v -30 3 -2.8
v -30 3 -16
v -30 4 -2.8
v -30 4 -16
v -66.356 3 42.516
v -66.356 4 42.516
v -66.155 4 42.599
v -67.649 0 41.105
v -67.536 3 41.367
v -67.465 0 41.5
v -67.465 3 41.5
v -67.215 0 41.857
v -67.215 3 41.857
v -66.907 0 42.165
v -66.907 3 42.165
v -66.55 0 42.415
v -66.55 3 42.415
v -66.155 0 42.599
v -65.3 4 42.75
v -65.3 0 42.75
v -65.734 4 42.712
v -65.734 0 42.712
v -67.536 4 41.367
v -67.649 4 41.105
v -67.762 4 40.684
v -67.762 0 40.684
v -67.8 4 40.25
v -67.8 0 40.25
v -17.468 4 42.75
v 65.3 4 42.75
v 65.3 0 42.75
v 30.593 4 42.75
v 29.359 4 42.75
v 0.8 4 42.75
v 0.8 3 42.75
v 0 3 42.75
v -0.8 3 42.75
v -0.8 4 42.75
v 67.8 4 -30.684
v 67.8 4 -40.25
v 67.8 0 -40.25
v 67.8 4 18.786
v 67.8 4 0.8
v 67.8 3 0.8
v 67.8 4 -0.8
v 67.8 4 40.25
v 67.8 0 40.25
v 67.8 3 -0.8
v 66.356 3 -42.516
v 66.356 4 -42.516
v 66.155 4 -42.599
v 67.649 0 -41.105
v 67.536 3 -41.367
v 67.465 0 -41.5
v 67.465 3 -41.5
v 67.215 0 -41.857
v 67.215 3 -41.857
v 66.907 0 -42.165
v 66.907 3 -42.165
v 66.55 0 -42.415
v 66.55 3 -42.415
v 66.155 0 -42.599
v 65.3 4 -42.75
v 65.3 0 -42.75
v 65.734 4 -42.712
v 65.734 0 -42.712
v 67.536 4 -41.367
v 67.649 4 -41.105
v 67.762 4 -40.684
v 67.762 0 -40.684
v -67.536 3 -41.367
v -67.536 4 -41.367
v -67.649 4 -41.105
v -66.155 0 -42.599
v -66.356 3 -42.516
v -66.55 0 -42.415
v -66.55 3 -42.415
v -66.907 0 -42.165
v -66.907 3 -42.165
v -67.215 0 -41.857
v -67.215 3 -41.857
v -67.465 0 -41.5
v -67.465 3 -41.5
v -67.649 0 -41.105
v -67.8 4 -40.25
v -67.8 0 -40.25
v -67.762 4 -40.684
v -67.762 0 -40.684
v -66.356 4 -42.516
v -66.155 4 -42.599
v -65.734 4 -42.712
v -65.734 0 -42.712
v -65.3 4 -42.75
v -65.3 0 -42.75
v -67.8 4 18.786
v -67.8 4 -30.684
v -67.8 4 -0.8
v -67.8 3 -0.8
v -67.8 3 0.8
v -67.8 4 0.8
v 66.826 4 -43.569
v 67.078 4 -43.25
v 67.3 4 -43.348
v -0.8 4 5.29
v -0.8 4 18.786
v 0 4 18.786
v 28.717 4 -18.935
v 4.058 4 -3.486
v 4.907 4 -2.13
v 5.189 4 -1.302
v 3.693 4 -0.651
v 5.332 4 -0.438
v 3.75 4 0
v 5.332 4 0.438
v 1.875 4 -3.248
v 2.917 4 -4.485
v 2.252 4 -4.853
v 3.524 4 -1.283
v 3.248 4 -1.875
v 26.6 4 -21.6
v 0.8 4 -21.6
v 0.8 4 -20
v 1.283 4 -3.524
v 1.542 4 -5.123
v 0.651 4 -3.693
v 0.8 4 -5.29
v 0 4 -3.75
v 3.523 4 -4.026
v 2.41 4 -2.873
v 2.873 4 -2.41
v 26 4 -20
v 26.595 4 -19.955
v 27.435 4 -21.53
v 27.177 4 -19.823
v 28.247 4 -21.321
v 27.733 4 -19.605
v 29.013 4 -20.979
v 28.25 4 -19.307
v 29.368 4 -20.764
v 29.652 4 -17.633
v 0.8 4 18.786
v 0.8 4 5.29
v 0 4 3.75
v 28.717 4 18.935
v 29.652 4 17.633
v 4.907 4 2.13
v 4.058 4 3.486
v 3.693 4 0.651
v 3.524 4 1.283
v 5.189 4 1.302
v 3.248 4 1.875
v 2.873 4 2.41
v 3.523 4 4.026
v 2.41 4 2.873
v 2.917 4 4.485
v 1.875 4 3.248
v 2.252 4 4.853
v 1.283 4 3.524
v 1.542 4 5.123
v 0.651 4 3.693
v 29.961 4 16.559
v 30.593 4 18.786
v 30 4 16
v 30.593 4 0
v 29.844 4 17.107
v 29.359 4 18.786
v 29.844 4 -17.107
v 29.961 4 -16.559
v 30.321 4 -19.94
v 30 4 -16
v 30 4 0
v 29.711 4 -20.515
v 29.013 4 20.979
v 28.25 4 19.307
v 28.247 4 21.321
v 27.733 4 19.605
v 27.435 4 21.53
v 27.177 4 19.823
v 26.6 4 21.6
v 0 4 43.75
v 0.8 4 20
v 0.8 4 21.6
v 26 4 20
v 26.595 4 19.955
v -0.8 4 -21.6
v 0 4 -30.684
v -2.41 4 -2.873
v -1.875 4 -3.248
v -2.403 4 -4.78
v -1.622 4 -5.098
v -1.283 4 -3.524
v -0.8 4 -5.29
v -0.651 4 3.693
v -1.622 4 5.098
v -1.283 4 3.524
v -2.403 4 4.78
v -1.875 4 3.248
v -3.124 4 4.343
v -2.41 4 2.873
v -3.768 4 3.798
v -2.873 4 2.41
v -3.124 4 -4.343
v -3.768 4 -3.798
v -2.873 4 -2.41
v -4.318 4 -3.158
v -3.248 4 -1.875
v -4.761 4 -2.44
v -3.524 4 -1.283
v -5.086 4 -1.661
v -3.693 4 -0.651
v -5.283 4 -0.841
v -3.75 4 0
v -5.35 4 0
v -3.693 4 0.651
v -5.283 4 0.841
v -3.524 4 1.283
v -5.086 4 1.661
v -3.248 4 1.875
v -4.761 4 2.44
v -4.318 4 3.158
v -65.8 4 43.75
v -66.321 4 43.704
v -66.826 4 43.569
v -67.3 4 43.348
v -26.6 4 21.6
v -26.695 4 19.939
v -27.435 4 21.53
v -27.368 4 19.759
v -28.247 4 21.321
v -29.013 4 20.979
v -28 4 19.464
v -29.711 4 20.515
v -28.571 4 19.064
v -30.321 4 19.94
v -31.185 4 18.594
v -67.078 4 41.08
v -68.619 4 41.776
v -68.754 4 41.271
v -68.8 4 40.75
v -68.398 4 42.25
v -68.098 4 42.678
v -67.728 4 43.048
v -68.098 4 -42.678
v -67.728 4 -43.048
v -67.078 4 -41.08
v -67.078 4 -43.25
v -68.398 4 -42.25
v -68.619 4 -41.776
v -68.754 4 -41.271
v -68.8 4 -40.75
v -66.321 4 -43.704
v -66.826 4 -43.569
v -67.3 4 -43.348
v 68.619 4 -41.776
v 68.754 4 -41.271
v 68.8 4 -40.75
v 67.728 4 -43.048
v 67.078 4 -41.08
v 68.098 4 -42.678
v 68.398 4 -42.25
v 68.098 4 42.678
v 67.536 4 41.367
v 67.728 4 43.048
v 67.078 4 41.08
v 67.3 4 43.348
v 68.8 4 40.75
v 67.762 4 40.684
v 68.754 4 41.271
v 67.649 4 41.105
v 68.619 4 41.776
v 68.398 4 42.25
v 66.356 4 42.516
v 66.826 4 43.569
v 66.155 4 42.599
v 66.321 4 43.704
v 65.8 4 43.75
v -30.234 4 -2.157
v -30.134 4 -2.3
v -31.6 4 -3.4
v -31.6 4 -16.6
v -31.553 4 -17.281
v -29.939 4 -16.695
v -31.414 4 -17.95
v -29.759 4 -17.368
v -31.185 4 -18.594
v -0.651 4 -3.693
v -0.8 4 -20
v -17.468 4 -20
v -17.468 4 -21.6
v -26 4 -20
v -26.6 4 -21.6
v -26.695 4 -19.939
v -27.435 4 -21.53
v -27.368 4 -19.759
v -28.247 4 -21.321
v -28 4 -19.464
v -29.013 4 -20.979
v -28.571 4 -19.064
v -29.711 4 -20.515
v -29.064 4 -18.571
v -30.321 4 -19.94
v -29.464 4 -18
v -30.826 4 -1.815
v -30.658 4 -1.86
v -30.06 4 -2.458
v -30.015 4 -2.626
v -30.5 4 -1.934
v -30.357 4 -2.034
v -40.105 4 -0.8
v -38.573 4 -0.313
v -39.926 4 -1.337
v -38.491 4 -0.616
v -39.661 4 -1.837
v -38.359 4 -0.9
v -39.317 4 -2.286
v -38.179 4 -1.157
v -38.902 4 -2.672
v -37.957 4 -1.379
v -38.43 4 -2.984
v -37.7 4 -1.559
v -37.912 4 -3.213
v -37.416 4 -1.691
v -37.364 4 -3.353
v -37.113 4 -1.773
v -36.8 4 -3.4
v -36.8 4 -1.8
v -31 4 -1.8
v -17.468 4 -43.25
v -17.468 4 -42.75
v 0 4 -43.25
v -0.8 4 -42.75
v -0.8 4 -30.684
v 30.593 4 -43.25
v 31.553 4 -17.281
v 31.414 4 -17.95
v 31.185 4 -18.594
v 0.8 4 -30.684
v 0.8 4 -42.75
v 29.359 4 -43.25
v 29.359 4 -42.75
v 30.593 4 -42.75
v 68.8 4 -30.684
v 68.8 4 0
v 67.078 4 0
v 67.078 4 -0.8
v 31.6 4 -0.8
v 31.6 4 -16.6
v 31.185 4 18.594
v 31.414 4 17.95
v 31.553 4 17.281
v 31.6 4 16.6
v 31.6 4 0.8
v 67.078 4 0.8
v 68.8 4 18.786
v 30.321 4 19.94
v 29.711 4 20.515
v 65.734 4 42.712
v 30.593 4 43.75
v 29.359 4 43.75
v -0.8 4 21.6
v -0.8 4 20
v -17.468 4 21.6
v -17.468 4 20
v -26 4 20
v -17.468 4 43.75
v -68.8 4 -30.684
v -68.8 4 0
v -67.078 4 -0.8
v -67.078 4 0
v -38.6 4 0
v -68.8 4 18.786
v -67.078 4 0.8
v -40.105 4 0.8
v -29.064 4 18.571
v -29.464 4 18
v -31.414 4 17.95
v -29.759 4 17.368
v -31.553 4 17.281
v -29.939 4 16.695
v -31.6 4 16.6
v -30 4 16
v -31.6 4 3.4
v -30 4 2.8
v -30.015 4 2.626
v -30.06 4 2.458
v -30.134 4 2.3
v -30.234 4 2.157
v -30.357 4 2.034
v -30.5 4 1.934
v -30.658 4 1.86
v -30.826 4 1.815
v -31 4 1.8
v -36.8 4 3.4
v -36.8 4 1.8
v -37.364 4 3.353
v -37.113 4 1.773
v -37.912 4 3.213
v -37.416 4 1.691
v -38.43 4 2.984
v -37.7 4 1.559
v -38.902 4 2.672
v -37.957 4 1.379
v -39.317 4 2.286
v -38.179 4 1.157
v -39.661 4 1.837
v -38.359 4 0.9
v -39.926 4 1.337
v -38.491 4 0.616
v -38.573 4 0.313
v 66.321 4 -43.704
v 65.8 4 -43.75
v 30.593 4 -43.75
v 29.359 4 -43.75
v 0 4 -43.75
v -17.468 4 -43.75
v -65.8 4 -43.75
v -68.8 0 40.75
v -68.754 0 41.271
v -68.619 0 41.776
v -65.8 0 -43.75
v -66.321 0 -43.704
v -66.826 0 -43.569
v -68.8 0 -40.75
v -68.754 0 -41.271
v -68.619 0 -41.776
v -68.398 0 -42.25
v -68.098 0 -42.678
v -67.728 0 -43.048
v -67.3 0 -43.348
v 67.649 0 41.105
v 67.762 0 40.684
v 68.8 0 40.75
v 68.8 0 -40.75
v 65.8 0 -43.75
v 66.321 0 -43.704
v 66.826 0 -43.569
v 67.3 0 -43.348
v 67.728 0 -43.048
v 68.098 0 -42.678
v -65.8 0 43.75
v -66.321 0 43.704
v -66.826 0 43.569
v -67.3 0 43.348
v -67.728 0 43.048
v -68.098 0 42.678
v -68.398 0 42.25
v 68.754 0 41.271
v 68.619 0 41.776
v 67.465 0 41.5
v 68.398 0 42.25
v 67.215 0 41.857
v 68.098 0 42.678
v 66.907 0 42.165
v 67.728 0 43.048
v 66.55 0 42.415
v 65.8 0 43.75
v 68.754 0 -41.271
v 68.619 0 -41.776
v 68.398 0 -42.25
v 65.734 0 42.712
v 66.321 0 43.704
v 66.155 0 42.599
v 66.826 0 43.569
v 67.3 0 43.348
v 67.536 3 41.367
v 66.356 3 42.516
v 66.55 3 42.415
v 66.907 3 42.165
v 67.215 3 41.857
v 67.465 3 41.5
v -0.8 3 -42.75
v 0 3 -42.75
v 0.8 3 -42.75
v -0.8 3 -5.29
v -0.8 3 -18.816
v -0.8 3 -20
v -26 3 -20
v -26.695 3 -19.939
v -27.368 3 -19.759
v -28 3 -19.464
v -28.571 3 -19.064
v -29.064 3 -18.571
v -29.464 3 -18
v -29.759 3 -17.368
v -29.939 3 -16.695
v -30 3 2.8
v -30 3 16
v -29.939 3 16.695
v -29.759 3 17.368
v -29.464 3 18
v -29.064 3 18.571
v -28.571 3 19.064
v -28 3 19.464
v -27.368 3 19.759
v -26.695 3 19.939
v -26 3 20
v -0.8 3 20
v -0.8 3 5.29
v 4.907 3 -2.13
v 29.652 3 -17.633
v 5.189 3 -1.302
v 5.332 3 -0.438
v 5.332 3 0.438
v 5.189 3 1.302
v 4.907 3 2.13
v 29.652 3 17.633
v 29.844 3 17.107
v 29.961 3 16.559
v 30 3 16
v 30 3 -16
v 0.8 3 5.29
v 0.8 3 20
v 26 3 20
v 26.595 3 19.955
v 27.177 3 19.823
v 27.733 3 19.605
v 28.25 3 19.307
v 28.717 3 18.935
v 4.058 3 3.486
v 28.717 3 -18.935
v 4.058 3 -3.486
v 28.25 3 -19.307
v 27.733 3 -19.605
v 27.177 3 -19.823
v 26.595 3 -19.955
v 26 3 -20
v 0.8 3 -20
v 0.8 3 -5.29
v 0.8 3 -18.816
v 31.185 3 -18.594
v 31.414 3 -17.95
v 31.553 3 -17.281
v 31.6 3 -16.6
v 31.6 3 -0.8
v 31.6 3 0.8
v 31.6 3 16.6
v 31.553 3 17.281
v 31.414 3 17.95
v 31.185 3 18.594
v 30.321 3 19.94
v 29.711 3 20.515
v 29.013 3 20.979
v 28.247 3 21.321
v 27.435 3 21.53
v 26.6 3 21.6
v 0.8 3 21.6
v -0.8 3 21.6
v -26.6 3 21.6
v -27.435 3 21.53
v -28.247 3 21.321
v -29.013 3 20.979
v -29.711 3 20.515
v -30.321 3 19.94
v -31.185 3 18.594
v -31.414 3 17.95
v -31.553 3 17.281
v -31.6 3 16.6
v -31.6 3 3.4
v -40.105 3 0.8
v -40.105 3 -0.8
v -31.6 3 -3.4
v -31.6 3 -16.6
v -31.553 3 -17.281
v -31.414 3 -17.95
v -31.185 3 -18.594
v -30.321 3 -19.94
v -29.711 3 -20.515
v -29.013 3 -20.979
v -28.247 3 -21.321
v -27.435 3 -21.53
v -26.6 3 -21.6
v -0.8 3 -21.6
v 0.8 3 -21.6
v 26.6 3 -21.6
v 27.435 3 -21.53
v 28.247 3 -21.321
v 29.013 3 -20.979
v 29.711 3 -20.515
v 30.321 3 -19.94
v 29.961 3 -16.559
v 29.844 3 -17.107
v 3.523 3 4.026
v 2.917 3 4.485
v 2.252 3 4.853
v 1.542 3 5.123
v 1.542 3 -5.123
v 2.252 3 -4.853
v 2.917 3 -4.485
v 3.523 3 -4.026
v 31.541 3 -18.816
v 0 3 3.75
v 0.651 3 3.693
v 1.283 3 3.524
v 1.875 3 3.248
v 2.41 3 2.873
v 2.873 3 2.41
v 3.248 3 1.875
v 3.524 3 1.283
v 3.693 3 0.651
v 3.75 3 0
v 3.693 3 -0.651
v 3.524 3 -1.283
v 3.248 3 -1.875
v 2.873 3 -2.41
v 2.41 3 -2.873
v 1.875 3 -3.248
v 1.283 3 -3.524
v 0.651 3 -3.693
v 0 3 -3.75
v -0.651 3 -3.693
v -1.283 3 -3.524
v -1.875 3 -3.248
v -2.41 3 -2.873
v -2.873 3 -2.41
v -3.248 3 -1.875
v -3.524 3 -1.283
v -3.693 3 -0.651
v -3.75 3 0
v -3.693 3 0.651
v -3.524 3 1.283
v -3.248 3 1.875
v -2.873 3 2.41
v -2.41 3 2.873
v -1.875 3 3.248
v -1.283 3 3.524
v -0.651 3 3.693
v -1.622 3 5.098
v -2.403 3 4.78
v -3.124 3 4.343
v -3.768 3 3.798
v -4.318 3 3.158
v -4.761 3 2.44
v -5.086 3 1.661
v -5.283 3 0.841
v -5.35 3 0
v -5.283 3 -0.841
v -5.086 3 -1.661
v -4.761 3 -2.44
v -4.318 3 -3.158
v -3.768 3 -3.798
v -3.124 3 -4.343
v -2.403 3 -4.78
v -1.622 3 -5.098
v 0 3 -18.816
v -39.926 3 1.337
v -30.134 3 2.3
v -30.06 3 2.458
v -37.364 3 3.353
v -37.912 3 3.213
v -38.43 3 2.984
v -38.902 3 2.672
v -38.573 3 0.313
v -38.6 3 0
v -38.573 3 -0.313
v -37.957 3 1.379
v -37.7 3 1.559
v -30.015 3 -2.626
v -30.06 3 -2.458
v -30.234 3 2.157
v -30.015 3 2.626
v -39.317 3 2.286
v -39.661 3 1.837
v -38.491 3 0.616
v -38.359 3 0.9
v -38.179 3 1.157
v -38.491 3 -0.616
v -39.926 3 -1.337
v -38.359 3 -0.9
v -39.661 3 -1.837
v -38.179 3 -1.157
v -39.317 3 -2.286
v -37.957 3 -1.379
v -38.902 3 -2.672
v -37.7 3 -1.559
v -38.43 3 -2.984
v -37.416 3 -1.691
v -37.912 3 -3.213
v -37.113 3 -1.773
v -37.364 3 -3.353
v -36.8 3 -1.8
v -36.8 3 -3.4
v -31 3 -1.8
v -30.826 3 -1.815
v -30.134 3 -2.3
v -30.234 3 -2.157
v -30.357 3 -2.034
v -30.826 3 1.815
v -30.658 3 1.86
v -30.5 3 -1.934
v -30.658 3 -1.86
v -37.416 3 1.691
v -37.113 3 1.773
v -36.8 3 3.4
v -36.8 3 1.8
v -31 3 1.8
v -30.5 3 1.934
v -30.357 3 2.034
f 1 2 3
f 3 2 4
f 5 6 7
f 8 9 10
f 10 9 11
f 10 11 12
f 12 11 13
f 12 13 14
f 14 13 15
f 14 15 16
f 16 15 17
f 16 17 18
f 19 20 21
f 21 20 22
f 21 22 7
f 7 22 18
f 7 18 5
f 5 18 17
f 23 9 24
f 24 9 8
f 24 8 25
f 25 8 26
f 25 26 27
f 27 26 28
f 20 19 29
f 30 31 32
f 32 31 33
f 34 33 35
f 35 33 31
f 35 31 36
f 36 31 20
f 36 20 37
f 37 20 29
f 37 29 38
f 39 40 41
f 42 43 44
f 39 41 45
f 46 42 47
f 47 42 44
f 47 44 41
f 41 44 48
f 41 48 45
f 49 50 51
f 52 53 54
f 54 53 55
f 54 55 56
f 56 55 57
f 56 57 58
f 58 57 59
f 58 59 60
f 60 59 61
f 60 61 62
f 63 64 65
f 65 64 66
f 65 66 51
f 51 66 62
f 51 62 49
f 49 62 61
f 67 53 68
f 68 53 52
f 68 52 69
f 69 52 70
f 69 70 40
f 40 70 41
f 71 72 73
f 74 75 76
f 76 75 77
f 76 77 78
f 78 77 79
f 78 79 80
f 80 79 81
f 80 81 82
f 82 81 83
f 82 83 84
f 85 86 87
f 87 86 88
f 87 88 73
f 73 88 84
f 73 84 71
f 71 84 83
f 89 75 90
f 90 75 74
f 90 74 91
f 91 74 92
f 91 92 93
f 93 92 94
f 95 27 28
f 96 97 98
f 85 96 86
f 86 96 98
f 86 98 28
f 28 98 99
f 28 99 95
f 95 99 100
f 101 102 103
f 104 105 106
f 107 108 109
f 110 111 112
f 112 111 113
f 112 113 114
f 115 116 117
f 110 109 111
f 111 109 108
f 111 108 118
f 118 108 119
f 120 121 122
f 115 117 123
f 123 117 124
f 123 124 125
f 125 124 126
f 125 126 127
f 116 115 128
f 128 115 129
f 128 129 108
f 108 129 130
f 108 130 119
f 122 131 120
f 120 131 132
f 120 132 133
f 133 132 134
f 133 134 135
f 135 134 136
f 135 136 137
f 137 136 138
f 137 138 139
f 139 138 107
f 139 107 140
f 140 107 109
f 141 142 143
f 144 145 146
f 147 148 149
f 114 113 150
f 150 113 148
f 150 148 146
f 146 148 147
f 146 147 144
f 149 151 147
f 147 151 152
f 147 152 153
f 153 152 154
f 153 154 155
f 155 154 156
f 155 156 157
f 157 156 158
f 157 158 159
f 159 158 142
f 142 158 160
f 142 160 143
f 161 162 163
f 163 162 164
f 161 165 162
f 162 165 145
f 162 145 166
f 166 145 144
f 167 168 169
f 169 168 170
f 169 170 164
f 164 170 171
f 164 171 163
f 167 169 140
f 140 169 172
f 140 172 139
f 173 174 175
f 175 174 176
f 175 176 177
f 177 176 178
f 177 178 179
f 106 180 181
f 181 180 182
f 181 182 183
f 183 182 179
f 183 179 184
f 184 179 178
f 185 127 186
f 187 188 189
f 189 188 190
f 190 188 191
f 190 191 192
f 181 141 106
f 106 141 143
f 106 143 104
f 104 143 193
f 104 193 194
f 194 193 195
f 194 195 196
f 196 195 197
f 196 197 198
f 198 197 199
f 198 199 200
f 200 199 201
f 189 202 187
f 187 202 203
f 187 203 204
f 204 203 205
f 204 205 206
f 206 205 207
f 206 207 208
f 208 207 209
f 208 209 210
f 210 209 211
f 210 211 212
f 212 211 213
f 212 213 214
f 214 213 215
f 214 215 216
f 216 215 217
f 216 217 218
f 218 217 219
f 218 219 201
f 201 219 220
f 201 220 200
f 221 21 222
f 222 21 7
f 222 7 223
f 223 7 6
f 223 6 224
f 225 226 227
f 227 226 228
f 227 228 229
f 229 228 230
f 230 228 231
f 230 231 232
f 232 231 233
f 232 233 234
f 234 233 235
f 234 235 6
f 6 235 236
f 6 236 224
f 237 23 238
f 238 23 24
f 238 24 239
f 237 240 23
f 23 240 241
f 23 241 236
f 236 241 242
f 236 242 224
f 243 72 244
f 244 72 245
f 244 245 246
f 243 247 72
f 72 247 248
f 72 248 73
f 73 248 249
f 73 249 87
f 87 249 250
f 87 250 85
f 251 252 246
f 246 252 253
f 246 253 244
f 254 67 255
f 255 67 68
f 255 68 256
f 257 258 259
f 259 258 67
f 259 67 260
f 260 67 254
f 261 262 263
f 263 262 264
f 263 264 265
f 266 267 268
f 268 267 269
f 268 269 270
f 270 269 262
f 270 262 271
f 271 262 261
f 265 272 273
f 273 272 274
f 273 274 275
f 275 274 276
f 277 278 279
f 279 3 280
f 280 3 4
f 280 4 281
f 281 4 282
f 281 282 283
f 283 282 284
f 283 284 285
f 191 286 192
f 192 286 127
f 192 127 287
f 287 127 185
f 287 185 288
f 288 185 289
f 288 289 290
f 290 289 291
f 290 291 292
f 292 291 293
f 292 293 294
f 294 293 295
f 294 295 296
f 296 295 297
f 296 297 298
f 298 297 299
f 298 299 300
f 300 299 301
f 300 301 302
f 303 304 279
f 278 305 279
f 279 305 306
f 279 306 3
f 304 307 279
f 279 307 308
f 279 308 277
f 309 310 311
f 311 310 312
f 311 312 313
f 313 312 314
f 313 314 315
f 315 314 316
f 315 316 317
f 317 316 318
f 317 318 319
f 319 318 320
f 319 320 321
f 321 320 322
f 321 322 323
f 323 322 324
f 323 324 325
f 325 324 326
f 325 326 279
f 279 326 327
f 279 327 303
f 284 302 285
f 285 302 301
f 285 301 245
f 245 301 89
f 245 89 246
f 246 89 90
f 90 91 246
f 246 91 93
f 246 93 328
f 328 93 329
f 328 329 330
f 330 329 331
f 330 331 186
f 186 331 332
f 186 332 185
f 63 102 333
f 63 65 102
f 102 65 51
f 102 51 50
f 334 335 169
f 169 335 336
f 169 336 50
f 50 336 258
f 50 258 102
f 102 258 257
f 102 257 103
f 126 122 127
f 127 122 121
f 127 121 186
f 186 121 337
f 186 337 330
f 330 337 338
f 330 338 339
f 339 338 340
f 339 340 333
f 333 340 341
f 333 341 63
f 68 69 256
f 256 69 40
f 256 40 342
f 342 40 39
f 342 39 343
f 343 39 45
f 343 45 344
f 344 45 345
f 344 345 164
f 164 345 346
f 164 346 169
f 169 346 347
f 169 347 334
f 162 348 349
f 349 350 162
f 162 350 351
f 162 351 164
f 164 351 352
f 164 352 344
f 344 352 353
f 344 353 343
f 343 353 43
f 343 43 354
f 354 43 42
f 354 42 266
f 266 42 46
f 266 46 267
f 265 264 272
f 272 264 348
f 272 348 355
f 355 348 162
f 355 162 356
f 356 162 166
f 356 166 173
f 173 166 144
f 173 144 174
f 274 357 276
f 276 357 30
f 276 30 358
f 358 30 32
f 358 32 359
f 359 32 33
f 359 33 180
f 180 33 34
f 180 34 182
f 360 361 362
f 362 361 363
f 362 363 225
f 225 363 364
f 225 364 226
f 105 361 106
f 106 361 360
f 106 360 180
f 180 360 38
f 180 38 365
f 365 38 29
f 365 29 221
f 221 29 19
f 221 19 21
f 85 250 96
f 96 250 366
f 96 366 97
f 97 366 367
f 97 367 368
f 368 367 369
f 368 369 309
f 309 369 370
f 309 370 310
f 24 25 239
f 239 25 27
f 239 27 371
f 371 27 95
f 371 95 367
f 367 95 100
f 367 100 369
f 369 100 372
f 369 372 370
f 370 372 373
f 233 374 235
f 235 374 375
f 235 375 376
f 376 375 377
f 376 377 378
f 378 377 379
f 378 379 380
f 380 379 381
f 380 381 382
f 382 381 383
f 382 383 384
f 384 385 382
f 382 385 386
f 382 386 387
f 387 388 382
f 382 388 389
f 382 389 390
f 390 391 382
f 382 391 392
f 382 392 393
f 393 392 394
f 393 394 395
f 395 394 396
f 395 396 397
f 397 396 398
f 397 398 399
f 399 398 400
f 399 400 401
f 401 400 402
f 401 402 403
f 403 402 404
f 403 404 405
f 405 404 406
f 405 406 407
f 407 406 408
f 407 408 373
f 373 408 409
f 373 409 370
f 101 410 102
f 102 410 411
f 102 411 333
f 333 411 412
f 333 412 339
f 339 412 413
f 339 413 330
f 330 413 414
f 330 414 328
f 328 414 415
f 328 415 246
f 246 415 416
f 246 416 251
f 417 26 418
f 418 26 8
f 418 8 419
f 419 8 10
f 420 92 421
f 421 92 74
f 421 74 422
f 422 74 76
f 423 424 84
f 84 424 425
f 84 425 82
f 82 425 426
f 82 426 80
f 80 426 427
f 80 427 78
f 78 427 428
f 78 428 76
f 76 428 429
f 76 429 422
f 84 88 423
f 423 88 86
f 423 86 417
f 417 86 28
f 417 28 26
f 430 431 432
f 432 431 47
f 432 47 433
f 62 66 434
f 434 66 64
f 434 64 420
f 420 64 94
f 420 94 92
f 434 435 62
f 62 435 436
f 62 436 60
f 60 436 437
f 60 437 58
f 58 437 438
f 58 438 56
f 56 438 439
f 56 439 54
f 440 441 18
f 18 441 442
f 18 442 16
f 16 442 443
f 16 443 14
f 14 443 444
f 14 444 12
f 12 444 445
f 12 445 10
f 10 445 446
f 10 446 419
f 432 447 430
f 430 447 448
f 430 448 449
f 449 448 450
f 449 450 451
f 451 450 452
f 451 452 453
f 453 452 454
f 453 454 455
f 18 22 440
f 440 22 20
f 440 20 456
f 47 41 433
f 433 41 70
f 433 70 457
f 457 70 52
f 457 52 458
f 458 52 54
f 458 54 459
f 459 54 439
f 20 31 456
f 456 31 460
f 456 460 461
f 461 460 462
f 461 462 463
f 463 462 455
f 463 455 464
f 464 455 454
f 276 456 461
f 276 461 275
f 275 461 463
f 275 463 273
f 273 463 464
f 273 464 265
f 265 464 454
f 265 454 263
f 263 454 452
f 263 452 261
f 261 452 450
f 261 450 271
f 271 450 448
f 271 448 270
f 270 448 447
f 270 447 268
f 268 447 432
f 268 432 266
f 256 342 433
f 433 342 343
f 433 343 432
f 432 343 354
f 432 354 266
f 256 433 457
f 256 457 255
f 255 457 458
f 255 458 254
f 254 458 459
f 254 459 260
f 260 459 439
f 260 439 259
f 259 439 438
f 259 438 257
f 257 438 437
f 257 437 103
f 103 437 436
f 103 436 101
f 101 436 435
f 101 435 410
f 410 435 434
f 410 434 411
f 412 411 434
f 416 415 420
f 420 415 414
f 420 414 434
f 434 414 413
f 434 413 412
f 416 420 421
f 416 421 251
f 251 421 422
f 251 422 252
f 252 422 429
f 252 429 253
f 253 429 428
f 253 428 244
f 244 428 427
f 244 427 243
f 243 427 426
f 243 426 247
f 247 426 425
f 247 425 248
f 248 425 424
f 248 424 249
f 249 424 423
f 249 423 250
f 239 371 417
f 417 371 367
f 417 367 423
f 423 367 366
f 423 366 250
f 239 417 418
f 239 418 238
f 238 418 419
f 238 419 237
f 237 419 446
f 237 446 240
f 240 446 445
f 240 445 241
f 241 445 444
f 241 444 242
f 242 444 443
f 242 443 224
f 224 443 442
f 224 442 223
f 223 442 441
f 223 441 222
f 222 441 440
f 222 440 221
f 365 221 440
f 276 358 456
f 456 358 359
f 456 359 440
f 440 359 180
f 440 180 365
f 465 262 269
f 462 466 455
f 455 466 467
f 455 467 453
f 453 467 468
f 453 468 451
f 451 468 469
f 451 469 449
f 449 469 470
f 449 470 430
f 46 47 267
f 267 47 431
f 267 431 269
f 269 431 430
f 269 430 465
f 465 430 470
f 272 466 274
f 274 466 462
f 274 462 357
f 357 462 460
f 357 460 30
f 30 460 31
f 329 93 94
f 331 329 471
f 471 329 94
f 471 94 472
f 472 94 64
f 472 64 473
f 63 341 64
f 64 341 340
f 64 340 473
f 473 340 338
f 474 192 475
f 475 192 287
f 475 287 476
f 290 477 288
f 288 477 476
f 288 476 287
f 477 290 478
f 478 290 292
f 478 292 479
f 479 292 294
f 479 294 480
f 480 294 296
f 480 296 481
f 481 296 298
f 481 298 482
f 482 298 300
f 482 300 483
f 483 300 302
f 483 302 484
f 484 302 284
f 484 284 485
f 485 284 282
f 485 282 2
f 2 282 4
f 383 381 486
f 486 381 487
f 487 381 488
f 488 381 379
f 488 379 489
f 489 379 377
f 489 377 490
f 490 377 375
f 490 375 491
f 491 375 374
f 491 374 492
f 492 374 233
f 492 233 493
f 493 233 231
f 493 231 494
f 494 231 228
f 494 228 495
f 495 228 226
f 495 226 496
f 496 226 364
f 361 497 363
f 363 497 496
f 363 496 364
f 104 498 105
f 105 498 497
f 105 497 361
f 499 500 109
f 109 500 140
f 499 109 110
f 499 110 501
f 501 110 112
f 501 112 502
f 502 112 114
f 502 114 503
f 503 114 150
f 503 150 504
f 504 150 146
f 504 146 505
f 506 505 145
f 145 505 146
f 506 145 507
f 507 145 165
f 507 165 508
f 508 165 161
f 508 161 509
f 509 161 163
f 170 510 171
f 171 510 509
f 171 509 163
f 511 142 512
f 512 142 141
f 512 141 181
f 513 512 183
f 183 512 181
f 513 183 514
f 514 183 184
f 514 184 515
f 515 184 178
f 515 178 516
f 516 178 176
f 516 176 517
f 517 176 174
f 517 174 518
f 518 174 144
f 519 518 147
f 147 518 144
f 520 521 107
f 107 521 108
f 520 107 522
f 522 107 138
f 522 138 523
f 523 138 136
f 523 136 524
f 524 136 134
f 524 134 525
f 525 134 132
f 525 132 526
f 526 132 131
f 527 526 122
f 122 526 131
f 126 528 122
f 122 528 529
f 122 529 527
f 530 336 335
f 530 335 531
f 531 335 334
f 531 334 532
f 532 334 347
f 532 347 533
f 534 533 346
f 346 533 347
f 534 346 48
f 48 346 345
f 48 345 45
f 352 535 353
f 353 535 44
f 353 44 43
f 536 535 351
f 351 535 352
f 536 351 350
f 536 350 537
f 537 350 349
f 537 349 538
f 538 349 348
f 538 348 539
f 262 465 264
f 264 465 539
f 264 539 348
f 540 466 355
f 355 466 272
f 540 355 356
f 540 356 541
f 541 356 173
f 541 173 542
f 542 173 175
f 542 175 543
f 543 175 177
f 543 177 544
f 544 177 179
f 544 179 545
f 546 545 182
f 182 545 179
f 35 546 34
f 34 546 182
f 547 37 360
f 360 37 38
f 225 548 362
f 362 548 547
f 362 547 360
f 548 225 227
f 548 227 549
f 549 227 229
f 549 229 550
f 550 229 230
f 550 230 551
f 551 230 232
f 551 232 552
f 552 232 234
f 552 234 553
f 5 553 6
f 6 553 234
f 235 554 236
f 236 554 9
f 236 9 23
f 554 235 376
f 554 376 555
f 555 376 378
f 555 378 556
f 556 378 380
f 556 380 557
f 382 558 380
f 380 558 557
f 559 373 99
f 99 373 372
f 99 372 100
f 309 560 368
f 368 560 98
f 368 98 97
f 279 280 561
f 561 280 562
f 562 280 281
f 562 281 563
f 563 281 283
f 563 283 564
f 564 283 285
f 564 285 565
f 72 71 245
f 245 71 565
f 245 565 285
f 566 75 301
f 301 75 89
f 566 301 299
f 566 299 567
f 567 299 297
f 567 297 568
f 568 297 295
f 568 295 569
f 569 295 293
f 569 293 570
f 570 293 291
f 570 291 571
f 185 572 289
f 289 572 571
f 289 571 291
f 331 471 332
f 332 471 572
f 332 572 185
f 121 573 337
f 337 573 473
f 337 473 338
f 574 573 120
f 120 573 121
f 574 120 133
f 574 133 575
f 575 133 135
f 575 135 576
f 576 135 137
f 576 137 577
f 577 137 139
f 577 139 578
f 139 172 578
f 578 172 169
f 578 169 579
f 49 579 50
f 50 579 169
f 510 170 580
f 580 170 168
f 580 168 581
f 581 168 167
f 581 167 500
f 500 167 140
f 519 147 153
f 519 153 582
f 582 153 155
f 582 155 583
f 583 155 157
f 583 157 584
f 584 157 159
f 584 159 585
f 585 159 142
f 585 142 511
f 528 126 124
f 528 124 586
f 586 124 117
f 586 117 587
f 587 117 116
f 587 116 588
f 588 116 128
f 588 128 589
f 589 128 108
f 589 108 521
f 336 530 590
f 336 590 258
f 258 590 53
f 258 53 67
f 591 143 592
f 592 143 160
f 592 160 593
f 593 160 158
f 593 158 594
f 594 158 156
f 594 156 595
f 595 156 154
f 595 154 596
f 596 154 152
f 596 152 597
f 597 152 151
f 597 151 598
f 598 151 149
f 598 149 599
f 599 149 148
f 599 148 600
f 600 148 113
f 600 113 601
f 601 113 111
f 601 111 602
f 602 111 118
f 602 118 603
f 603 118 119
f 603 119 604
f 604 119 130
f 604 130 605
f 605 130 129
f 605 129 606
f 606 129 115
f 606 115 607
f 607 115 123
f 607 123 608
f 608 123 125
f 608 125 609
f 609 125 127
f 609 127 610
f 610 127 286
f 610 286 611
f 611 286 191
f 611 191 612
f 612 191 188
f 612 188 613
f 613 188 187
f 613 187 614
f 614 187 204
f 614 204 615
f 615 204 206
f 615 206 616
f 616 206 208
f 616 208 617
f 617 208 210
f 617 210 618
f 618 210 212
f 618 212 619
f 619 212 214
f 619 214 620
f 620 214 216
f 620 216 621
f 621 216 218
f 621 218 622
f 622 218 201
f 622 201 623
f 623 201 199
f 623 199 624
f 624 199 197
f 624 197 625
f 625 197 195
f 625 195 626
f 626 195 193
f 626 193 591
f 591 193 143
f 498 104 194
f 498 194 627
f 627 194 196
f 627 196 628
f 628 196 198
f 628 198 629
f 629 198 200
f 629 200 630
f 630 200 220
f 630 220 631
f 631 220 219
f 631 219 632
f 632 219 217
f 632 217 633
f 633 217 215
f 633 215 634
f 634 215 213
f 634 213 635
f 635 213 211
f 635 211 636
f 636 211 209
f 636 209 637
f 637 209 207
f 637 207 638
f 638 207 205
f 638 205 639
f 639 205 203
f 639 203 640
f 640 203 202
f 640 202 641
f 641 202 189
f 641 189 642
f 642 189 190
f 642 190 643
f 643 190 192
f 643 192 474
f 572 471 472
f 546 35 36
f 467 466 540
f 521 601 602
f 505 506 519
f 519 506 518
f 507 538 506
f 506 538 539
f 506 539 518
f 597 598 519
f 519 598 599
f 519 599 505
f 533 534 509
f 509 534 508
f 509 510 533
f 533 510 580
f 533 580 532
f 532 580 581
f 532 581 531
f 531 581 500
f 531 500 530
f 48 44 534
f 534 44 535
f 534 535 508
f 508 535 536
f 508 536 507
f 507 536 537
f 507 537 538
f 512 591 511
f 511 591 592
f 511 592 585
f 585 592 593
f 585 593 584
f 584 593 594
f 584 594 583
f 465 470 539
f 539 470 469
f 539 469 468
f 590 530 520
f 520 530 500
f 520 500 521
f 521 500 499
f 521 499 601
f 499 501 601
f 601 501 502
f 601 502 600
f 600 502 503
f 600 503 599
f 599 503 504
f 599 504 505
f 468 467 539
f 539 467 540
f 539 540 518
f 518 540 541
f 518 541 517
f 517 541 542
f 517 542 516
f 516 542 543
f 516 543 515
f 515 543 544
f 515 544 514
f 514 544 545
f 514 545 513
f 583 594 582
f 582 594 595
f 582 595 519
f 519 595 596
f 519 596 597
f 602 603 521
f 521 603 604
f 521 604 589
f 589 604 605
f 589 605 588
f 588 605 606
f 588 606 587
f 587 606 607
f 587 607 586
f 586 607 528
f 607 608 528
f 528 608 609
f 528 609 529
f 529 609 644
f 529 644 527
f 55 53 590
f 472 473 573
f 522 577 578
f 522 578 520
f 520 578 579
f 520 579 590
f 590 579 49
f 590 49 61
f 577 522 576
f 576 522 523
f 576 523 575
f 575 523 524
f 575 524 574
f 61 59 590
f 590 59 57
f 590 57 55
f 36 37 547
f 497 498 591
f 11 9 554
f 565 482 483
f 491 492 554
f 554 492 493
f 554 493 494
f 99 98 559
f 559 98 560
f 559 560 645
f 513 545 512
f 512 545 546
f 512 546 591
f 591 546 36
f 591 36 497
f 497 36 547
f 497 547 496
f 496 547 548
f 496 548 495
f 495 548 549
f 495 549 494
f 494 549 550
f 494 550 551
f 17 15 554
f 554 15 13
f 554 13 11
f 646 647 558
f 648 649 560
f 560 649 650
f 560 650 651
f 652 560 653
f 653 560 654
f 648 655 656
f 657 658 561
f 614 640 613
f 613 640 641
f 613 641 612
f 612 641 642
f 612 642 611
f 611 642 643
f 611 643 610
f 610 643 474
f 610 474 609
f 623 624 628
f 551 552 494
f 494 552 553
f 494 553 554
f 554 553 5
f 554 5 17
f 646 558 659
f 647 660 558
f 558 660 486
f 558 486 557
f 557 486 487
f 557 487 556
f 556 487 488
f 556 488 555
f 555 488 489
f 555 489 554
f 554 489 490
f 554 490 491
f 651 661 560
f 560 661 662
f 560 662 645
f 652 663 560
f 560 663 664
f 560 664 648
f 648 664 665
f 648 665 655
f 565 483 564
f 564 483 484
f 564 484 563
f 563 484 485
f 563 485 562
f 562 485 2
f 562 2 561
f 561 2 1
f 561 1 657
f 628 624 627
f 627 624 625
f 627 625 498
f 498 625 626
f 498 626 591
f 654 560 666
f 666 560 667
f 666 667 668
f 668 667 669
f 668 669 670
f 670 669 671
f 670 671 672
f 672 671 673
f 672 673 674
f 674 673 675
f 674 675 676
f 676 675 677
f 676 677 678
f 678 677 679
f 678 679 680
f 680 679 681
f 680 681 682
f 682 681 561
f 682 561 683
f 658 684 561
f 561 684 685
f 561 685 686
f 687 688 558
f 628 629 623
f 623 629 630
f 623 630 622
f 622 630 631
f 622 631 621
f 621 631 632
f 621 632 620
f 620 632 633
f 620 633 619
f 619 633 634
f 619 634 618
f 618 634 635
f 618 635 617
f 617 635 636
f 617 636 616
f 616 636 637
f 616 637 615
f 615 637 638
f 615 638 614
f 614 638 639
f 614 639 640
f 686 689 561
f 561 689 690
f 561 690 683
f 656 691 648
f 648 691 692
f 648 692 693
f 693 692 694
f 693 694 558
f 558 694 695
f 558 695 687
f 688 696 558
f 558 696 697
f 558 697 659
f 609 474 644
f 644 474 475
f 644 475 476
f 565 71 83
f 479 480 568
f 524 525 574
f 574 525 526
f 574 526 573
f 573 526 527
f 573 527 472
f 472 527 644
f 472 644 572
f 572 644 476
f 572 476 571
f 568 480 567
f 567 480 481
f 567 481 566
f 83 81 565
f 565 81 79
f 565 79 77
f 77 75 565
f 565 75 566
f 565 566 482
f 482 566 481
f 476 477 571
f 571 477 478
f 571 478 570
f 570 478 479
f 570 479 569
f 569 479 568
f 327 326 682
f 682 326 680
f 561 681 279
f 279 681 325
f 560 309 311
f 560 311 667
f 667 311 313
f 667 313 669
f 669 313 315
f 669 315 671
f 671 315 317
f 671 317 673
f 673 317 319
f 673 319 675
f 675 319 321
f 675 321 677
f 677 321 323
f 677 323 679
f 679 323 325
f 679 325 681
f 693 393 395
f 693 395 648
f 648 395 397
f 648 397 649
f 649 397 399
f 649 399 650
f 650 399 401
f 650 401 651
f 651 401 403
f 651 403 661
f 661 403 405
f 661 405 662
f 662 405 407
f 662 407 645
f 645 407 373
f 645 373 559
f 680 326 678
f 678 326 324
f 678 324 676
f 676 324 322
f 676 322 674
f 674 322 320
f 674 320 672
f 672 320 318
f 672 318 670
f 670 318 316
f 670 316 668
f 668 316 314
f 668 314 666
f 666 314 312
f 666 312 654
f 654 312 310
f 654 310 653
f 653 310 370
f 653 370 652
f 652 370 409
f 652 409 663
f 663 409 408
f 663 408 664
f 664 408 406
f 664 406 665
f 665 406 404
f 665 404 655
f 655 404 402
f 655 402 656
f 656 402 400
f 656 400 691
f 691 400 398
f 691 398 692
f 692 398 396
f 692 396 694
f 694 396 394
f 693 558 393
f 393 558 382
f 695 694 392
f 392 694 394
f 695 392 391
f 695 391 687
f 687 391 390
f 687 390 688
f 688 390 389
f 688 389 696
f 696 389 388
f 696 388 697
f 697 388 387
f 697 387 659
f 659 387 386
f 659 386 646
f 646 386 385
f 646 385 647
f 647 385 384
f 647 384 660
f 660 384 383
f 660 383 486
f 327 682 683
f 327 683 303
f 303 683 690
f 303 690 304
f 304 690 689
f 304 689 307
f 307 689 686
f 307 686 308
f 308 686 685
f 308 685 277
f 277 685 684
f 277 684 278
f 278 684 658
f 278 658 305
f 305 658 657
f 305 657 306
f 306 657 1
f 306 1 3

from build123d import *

# Parameters (mm, degrees)
BOSS_EXTRU_1_DEPTH      = 4
ESQUISSE2_R             = 3.75
BOSS_EXTRU_3_DEPTH      = 1
BOSS_EXTRU_4_DEPTH      = 1
ENL_V_MAT_EXTRU_1_DEPTH = 82.630279309
CONG_1_R                = 1


with BuildPart() as part:
    # Esquisse1 → Boss.-Extru.1 (new body)
    with BuildSketch(Plane(origin=(0, 0, 0), x_dir=(1, 0, 0), z_dir=(0, 1, 0))):
        with BuildLine():
            Line((-65.8, 43.75), (65.8, 43.75))
            ThreePointArc((65.8, 43.75), (67.921320344, 42.871320344), (68.8, 40.75))
            Line((68.8, 40.75), (68.8, -40.75))
            ThreePointArc((68.8, -40.75), (67.921320344, -42.871320344), (65.8, -43.75))
            Line((65.8, -43.75), (-65.8, -43.75))
            ThreePointArc((-65.8, -43.75), (-67.921320344, -42.871320344), (-68.8, -40.75))
            Line((-68.8, -40.75), (-68.8, 40.75))
            ThreePointArc((-68.8, 40.75), (-67.921320344, 42.871320344), (-65.8, 43.75))
        make_face()
        with BuildLine():
            Line((-65.3, 42.75), (65.3, 42.75))
            ThreePointArc((65.3, 42.75), (67.067766953, 42.017766953), (67.8, 40.25))
            Line((67.8, 40.25), (67.8, -40.25))
            ThreePointArc((67.8, -40.25), (67.067766953, -42.017766953), (65.3, -42.75))
            Line((65.3, -42.75), (-65.3, -42.75))
            ThreePointArc((-65.3, -42.75), (-67.067766953, -42.017766953), (-67.8, -40.25))
            Line((-67.8, -40.25), (-67.8, 40.25))
            ThreePointArc((-67.8, 40.25), (-67.067766953, 42.017766953), (-65.3, 42.75))
        make_face(mode=Mode.SUBTRACT)
    extrude(amount=BOSS_EXTRU_1_DEPTH)

    # Esquisse2 → Boss.-Extru.3 (add)
    with BuildSketch(Plane(origin=(0, 4, 0), x_dir=(1, 0, 0), z_dir=(0, 1, 0))):
        with BuildLine():
            Line((31.185394692, 18.593528409), (67.917224545, 41.605916277))
            Line((67.917224545, 41.605916277), (67.067766953, 42.961800416))
            Line((67.067766953, 42.961800416), (30.320844752, 19.939957235))
            ThreePointArc((30.320844752, 19.939957235), (28.637181119, 21.166168316), (26.6, 21.6))
            Line((26.6, 21.6), (0.8, 21.6))
            Line((0.8, 21.6), (0.8, 43.322975794))
            Line((0.8, 43.322975794), (-0.8, 43.322975794))
            Line((-0.8, 43.322975794), (-0.8, 21.6))
            Line((-0.8, 21.6), (-26.6, 21.6))
            ThreePointArc((-26.6, 21.6), (-28.637181119, 21.166168316), (-30.320844752, 19.939957235))
            Line((-30.320844752, 19.939957235), (-67.067766953, 42.961800416))
            Line((-67.067766953, 42.961800416), (-67.917224545, 41.605916277))
            Line((-67.917224545, 41.605916277), (-31.185394692, 18.593528409))
            ThreePointArc((-31.185394692, 18.593528409), (-31.495251447, 17.618092958), (-31.6, 16.6))
            Line((-31.6, 16.6), (-31.6, 0.8))
            Line((-31.6, 0.8), (-68.322644777, 0.8))
            Line((-68.322644777, 0.8), (-68.322644777, -0.8))
            Line((-68.322644777, -0.8), (-31.6, -0.8))
            Line((-31.6, -0.8), (-31.6, -16.6))
            ThreePointArc((-31.6, -16.6), (-31.495251447, -17.618092958), (-31.185394692, -18.593528409))
            Line((-31.185394692, -18.593528409), (-67.921921264, -41.608858758))
            Line((-67.921921264, -41.608858758), (-67.072463672, -42.964742898))
            Line((-67.072463672, -42.964742898), (-30.320844752, -19.939957235))
            ThreePointArc((-30.320844752, -19.939957235), (-28.637181119, -21.166168316), (-26.6, -21.6))
            Line((-26.6, -21.6), (-0.8, -21.6))
            Line((-0.8, -21.6), (-0.8, -43.218261979))
            Line((-0.8, -43.218261979), (0.8, -43.218261979))
            Line((0.8, -43.218261979), (0.8, -21.6))
            Line((0.8, -21.6), (26.6, -21.6))
            ThreePointArc((26.6, -21.6), (28.637181119, -21.166168316), (30.320844752, -19.939957235))
            Line((30.320844752, -19.939957235), (66.872148546, -42.839246036))
            Line((66.872148546, -42.839246036), (67.721606138, -41.483361896))
            Line((67.721606138, -41.483361896), (31.185394692, -18.593528409))
            ThreePointArc((31.185394692, -18.593528409), (31.495251447, -17.618092958), (31.6, -16.6))
            Line((31.6, -16.6), (31.6, -0.8))
            Line((31.6, -0.8), (68.284636361, -0.8))
            Line((68.284636361, -0.8), (68.284636361, 0.8))
            Line((68.284636361, 0.8), (31.6, 0.8))
            Line((31.6, 0.8), (31.6, 16.6))
            ThreePointArc((31.6, 16.6), (31.495251447, 17.618092958), (31.185394692, 18.593528409))
        make_face()
        with Locations(Location((0, 0, 0), (0, 0, 270))):
            Circle(ESQUISSE2_R, mode=Mode.SUBTRACT)
        with BuildLine():
            Line((-26, 20), (-0.8, 20))
            Line((-0.8, 20), (-0.8, 5.289848769))
            ThreePointArc((-0.8, 5.289848769), (-5.35, 0), (-0.8, -5.289848769))
            Line((-0.8, -5.289848769), (-0.8, -20))
            Line((-0.8, -20), (-26, -20))
            ThreePointArc((-26, -20), (-28.828427125, -18.828427125), (-30, -16))
            Line((-30, -16), (-30, 16))
            ThreePointArc((-30, 16), (-28.828427125, 18.828427125), (-26, 20))
        make_face(mode=Mode.SUBTRACT)
        with BuildLine():
            Line((30, 16), (30, -16))
            ThreePointArc((30, -16), (29.91194143, -16.834694103), (29.651642878, -17.632637221))
            Line((29.651642878, -17.632637221), (4.907492575, -2.130496802))
            ThreePointArc((4.907492575, -2.130496802), (5.35, 0), (4.907492575, 2.130496802))
            Line((4.907492575, 2.130496802), (29.651642878, 17.632637221))
            ThreePointArc((29.651642878, 17.632637221), (29.91194143, 16.834694103), (30, 16))
        make_face(mode=Mode.SUBTRACT)
        with BuildLine():
            Line((0.8, 20), (0.8, 5.289848769))
            ThreePointArc((0.8, 5.289848769), (2.590994023, 4.680731778), (4.058034983, 3.486380942))
            Line((4.058034983, 3.486380942), (28.717305938, 18.935344688))
            ThreePointArc((28.717305938, 18.935344688), (27.459215756, 19.724337441), (26, 20))
            Line((26, 20), (0.8, 20))
        make_face(mode=Mode.SUBTRACT)
        with BuildLine():
            Line((0.8, -20), (0.8, -5.289848769))
            ThreePointArc((0.8, -5.289848769), (2.590994023, -4.680731778), (4.058034983, -3.486380942))
            Line((4.058034983, -3.486380942), (28.717305938, -18.935344688))
            ThreePointArc((28.717305938, -18.935344688), (27.459215756, -19.724337441), (26, -20))
            Line((26, -20), (0.8, -20))
        make_face(mode=Mode.SUBTRACT)
    extrude(amount=-BOSS_EXTRU_3_DEPTH)

    # Esquisse3 → Boss.-Extru.4 (add)
    with BuildSketch(Plane(origin=(0, 4, 0), x_dir=(1, 0, 0), z_dir=(0, 1, 0))):
        with BuildLine():
            Line((-31.6, 7.246102482), (-30, 7.246102482))
            Line((-30, 7.246102482), (-30, -10.710151561))
            Line((-30, -10.710151561), (-31.6, -10.710151561))
            Line((-31.6, -10.710151561), (-31.6, -3.4))
            Line((-31.6, -3.4), (-36.8, -3.4))
            ThreePointArc((-36.8, -3.4), (-40.2, 0), (-36.8, 3.4))
            Line((-36.8, 3.4), (-31.6, 3.4))
            Line((-31.6, 3.4), (-31.6, 7.246102482))
        make_face()
        with BuildLine():
            Line((-36.8, 1.8), (-33.91555898, 1.8))
            Line((-33.91555898, 1.8), (-31.6, 1.8))
            Line((-31.6, 1.8), (-31.6, -1.8))
            Line((-31.6, -1.8), (-33.91555898, -1.8))
            Line((-33.91555898, -1.8), (-36.8, -1.8))
            ThreePointArc((-36.8, -1.8), (-38.6, 0), (-36.8, 1.8))
        make_face(mode=Mode.SUBTRACT)
    extrude(amount=-BOSS_EXTRU_4_DEPTH)

    # Esquisse4 → Enlèv. mat.-Extru.1 (cut, through all)
    with BuildSketch(Plane(origin=(0, 4, 0), x_dir=(1, 0, 0), z_dir=(0, 1, 0))):
        with BuildLine():
            Line((-36.8, 1.8), (-28.230544018, 1.8))
            Line((-28.230544018, 1.8), (-28.230544018, -1.8))
            Line((-28.230544018, -1.8), (-36.8, -1.8))
            ThreePointArc((-36.8, -1.8), (-38.6, 0), (-36.8, 1.8))
        make_face()
    extrude(amount=-ENL_V_MAT_EXTRU_1_DEPTH, mode=Mode.SUBTRACT)

    # Congé1
    cong_1_edges = [part.edges().sort_by_distance(p)[0] for p in [
        (-30, 3.5, -1.8),
        (-30, 3.5, 1.8),
    ]]
    fillet(cong_1_edges, radius=CONG_1_R)


solid = part.part
